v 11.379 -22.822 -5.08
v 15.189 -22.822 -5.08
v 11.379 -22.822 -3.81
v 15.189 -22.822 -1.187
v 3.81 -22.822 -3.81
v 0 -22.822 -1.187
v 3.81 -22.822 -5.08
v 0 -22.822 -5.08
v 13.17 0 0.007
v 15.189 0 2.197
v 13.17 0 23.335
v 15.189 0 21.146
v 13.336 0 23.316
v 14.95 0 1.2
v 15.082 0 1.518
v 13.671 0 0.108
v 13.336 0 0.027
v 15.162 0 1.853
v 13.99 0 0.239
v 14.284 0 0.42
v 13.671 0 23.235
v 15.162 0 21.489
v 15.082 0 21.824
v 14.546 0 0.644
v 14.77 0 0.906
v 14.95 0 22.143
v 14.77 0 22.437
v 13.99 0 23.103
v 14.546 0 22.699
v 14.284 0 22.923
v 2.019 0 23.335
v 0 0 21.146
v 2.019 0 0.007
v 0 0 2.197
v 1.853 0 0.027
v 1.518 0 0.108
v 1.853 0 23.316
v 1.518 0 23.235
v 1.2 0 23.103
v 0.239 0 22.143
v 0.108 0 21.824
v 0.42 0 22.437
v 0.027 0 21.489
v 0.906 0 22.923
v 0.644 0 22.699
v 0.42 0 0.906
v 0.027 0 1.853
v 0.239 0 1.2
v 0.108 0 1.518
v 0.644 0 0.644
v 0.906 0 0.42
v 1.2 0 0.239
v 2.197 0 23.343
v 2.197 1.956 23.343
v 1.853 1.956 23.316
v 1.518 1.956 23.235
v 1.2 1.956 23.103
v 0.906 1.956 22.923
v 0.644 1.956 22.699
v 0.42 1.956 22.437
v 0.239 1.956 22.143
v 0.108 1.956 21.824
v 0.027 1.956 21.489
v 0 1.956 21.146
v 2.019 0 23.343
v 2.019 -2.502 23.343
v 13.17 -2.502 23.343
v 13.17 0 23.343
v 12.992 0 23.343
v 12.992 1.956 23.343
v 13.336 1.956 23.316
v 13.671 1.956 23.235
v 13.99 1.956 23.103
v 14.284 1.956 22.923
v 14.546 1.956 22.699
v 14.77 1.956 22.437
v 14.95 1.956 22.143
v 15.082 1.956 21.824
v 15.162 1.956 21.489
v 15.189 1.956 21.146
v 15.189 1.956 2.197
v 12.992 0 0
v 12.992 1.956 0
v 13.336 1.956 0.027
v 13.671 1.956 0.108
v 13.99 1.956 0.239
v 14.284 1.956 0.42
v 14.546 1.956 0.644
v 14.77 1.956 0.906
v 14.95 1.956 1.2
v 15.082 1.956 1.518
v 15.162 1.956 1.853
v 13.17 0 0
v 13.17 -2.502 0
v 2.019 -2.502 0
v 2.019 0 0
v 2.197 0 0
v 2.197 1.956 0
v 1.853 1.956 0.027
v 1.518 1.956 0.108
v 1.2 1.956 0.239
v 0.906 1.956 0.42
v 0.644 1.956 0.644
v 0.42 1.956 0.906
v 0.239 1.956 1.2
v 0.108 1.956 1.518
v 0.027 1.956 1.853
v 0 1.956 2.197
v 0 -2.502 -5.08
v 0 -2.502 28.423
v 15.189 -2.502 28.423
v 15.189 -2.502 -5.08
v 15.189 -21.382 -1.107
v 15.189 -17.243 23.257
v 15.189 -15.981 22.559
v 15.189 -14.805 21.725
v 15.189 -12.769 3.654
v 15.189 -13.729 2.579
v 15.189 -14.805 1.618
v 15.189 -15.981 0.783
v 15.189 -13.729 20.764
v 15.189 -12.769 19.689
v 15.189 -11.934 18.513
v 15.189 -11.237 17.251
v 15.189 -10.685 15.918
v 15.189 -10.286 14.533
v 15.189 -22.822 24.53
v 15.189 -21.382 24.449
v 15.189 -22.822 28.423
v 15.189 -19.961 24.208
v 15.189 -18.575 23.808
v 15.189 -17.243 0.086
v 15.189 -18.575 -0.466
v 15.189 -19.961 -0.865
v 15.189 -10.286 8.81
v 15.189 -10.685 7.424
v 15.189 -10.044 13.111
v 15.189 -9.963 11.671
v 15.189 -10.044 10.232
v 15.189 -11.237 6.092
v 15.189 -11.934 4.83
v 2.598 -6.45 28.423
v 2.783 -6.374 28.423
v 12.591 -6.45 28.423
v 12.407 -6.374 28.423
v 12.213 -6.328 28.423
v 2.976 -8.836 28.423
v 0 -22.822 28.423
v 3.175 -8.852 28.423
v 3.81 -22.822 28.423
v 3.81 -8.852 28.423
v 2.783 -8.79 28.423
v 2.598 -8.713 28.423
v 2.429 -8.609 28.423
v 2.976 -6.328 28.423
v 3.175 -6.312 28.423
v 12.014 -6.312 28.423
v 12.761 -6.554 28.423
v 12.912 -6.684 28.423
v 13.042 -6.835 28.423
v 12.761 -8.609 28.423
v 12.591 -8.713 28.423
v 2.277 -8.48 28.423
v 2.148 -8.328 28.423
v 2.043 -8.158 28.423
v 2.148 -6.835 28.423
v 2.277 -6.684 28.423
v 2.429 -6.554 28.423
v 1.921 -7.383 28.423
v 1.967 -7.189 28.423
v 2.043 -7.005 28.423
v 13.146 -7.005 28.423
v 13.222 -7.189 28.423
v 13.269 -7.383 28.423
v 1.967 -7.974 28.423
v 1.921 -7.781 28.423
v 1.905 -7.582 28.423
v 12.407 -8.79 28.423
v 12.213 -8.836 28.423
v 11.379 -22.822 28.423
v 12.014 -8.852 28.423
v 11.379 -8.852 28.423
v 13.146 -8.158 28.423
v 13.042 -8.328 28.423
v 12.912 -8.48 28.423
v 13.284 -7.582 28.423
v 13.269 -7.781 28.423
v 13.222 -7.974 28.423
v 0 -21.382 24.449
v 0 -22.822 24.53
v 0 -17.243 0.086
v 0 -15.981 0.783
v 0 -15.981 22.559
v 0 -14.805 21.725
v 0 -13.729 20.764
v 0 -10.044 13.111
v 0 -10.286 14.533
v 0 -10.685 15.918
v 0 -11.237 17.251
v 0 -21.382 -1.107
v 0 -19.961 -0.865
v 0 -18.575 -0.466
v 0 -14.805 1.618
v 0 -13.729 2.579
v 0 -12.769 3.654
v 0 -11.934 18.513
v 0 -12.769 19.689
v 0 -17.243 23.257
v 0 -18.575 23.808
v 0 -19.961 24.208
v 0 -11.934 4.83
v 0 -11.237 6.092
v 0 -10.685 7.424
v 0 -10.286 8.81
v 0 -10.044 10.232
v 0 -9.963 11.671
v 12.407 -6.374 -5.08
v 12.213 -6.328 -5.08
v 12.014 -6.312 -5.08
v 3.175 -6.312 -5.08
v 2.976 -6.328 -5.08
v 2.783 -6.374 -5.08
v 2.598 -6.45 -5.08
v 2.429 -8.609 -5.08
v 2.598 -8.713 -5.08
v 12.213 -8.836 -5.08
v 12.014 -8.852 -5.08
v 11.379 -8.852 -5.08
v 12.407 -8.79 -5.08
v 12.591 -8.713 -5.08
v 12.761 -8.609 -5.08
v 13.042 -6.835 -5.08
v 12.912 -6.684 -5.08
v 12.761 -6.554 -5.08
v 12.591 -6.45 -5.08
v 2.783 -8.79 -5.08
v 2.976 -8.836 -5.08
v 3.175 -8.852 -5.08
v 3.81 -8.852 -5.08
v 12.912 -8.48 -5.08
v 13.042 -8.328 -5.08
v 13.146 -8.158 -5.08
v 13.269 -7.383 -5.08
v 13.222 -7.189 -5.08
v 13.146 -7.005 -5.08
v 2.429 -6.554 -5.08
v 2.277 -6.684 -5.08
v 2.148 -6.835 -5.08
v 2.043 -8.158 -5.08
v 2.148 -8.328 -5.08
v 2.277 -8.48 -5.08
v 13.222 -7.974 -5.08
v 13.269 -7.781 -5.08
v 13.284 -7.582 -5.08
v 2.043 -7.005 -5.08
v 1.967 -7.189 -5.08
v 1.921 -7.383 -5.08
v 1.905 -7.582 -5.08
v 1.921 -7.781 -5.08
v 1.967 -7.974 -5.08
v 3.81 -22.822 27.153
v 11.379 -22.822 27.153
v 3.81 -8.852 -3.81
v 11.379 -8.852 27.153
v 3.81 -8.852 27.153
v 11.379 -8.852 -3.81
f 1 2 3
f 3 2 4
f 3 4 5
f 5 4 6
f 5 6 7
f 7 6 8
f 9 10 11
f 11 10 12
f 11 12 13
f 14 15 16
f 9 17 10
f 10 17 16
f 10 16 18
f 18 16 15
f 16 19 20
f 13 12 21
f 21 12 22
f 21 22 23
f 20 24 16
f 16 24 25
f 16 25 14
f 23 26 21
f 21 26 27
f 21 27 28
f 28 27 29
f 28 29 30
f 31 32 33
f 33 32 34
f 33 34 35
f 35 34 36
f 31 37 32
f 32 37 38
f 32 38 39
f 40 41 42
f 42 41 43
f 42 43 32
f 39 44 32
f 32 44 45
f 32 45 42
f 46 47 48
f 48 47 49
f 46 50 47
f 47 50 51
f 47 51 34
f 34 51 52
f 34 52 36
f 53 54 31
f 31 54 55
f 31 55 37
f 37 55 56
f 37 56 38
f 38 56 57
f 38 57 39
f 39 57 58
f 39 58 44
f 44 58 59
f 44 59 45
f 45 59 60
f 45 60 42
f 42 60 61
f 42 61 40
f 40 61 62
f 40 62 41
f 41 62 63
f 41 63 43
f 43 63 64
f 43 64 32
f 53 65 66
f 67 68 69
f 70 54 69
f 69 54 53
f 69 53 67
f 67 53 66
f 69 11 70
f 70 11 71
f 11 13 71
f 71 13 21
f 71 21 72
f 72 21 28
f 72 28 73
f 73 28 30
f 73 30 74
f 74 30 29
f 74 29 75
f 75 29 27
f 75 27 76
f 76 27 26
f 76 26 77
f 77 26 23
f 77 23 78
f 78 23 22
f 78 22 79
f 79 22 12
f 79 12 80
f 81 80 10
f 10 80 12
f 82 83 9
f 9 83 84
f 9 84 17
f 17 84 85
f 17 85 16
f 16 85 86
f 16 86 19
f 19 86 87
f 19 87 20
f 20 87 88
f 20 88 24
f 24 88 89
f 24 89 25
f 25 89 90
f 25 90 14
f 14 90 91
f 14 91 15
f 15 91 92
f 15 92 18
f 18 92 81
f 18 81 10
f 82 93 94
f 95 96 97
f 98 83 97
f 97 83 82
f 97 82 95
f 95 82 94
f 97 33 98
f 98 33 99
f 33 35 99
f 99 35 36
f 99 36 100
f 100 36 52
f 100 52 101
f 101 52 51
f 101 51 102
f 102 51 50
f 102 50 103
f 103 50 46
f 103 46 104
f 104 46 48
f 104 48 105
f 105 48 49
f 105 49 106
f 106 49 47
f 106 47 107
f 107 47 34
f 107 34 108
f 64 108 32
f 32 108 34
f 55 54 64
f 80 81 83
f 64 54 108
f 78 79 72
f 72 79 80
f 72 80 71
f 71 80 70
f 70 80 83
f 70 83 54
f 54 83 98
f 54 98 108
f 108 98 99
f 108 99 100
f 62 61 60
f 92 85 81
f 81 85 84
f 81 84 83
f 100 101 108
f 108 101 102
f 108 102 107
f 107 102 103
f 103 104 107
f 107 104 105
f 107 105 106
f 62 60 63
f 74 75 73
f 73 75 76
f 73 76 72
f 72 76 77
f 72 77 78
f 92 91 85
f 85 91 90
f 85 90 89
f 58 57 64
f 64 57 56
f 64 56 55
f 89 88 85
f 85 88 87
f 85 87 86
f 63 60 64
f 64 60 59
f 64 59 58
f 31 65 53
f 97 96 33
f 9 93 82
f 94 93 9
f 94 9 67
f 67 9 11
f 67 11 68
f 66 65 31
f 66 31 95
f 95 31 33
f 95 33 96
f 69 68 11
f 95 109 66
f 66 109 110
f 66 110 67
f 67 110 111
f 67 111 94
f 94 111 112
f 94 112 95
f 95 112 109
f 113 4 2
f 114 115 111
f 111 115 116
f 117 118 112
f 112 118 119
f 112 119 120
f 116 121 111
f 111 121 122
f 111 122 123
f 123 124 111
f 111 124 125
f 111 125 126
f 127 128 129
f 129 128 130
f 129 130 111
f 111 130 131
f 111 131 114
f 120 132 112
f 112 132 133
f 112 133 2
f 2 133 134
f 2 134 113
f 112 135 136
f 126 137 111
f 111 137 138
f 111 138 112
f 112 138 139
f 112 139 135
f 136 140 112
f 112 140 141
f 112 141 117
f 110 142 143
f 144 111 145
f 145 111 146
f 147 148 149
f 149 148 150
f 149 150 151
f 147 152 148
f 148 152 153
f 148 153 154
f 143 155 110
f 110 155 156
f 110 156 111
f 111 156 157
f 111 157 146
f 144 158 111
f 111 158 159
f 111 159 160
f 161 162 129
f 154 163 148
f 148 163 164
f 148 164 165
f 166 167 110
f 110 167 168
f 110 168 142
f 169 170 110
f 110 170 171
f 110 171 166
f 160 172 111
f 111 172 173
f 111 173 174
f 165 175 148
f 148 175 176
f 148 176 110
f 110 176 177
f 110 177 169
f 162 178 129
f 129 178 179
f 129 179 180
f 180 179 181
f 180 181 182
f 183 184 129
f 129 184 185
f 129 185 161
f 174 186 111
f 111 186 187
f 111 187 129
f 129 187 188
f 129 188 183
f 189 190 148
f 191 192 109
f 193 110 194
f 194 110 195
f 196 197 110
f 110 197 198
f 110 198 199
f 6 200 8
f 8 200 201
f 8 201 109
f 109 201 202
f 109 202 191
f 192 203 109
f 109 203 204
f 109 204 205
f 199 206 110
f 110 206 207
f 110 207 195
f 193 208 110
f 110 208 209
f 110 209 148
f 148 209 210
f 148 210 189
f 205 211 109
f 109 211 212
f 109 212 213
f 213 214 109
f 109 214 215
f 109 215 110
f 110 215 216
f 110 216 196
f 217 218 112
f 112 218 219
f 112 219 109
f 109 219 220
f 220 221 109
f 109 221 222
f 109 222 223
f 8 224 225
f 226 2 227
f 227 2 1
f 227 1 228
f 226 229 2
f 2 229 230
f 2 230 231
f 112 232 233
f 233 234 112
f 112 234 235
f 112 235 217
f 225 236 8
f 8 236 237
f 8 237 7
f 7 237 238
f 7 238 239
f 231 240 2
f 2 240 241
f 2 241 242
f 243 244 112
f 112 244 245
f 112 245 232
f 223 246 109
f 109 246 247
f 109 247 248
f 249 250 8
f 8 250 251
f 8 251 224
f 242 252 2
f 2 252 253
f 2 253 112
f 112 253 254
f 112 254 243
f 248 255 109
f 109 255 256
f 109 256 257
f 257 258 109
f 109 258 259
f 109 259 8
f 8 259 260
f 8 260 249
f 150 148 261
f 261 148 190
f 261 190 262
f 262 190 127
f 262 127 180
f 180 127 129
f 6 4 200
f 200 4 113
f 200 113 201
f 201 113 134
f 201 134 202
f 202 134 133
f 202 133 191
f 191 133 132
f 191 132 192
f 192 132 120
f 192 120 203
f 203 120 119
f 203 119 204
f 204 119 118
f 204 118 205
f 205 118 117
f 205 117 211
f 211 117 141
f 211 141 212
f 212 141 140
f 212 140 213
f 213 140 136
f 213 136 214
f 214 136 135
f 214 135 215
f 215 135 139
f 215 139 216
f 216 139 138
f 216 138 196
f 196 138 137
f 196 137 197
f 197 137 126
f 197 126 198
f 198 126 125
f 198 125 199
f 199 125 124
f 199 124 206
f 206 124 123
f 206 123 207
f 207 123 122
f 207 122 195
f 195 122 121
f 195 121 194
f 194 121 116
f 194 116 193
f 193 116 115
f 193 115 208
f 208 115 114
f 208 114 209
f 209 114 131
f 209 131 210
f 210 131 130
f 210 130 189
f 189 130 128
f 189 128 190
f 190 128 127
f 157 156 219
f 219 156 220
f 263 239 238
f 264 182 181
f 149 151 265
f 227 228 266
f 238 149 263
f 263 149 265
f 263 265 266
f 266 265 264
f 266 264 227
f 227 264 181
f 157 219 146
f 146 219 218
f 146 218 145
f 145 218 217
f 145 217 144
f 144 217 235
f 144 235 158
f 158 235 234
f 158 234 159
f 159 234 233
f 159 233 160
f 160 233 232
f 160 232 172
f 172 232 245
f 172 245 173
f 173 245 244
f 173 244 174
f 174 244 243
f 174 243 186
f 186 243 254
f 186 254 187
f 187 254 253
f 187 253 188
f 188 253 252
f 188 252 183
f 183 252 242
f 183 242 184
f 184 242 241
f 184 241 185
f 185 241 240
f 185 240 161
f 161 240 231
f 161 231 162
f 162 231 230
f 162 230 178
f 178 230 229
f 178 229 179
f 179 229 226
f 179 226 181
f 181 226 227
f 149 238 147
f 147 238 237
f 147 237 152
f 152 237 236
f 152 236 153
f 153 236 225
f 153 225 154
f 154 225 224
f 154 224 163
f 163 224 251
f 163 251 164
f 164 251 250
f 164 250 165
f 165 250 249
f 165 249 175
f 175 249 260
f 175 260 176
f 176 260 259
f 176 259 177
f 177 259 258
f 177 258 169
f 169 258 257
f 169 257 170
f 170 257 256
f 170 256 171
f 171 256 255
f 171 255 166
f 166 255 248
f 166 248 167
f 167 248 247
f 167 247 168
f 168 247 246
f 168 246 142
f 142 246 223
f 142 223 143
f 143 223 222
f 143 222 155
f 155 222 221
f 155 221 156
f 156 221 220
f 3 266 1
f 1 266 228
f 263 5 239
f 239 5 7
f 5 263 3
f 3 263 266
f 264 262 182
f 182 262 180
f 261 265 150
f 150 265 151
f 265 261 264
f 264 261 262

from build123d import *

# Parameters (mm, degrees)
BOSS_EXTRUDE1_DEPTH = 1.9558
SKETCH2_W           = 11.1506
SKETCH2_H           = 23.3426
BOSS_EXTRUDE2_DEPTH = 2.5019
SKETCH3_W           = 15.1892
SKETCH3_H           = 33.5026
BOSS_EXTRUDE3_DEPTH = 20.32
SKETCH4_R           = 12.85875
CUT_EXTRUDE1_DEPTH  = 40.489177087
SKETCH5_W           = 11.3792
SKETCH5_H           = 2.54
CUT_EXTRUDE2_DEPTH  = 44.289434312
FILLET1_R           = 1.27
SKETCH6_W           = 7.5692
SKETCH6_H           = 13.97
CUT_EXTRUDE3_DEPTH  = 1.27
SKETCH7_W           = 7.5692
SKETCH7_H           = 13.97
CUT_EXTRUDE4_DEPTH  = 1.27


with BuildPart() as part:
    # Sketch1 → Boss-Extrude1 (new body)
    with BuildSketch(Plane(origin=(0, 0, 0), x_dir=(1, 0, 0), z_dir=(0, 1, 0))):
        with BuildLine():
            Line((2.1971, 0), (12.9921, 0))
            ThreePointArc((12.9921, 0), (14.545684309, -0.643515691), (15.1892, -2.1971))
            Line((15.1892, -2.1971), (15.1892, -21.1455))
            ThreePointArc((15.1892, -21.1455), (14.545684309, -22.699084309), (12.9921, -23.3426))
            Line((12.9921, -23.3426), (2.1971, -23.3426))
            ThreePointArc((2.1971, -23.3426), (0.643515691, -22.699084309), (0, -21.1455))
            Line((0, -21.1455), (0, -2.1971))
            ThreePointArc((0, -2.1971), (0.643515691, -0.643515691), (2.1971, 0))
        make_face()
    extrude(amount=BOSS_EXTRUDE1_DEPTH)

    # Sketch2 → Boss-Extrude2 (add)
    with BuildSketch(Plane.XZ):
        with Locations((7.5946, 11.6713)):
            Rectangle(SKETCH2_W, SKETCH2_H)
    extrude(amount=BOSS_EXTRUDE2_DEPTH)

    # Sketch3 → Boss-Extrude3 (add)
    with BuildSketch(Plane.XZ.offset(2.5019)):
        with Locations((7.5946, 11.6713)):
            Rectangle(SKETCH3_W, SKETCH3_H)
    extrude(amount=BOSS_EXTRUDE3_DEPTH)

    # Sketch4 → Cut-Extrude1 (cut, through all)
    with BuildSketch(Plane(origin=(15.1892, 0, 0), x_dir=(0, 0, -1), z_dir=(1, 0, 0))):
        with Locations((-11.6713, -22.8219)):
            Circle(SKETCH4_R)
    extrude(amount=-CUT_EXTRUDE1_DEPTH, mode=Mode.SUBTRACT)

    # Sketch5 → Cut-Extrude2 (cut, through all)
    with BuildSketch(Plane.XY.offset(28.4226)):
        with Locations((7.5946, -7.5819)):
            Rectangle(SKETCH5_W, SKETCH5_H)
    extrude(amount=-CUT_EXTRUDE2_DEPTH, mode=Mode.SUBTRACT)

    # Fillet1
    fillet1_edges = [part.edges().sort_by_distance(p)[0] for p in [
        (13.2842, -8.8519, 11.6713),
        (13.2842, -6.3119, 11.6713),
        (1.905, -6.3119, 11.6713),
        (1.905, -8.8519, 11.6713),
    ]]
    fillet(fillet1_edges, radius=FILLET1_R - 0.0001)  # a hair under: the kernel refuses the full size

    # Sketch6 → Cut-Extrude3 (cut)
    with BuildSketch(Plane(origin=(0, 0, -5.08), x_dir=(-1, 0, 0), z_dir=(0, 0, -1))):
        with Locations((-7.5946, -15.8369)):
            Rectangle(SKETCH6_W, SKETCH6_H)
    extrude(amount=-CUT_EXTRUDE3_DEPTH, mode=Mode.SUBTRACT)

    # Sketch7 → Cut-Extrude4 (cut)
    with BuildSketch(Plane.XY.offset(28.4226)):
        with Locations((7.5946, -15.8369)):
            Rectangle(SKETCH7_W, SKETCH7_H)
    extrude(amount=-CUT_EXTRUDE4_DEPTH, mode=Mode.SUBTRACT)


solid = part.part
